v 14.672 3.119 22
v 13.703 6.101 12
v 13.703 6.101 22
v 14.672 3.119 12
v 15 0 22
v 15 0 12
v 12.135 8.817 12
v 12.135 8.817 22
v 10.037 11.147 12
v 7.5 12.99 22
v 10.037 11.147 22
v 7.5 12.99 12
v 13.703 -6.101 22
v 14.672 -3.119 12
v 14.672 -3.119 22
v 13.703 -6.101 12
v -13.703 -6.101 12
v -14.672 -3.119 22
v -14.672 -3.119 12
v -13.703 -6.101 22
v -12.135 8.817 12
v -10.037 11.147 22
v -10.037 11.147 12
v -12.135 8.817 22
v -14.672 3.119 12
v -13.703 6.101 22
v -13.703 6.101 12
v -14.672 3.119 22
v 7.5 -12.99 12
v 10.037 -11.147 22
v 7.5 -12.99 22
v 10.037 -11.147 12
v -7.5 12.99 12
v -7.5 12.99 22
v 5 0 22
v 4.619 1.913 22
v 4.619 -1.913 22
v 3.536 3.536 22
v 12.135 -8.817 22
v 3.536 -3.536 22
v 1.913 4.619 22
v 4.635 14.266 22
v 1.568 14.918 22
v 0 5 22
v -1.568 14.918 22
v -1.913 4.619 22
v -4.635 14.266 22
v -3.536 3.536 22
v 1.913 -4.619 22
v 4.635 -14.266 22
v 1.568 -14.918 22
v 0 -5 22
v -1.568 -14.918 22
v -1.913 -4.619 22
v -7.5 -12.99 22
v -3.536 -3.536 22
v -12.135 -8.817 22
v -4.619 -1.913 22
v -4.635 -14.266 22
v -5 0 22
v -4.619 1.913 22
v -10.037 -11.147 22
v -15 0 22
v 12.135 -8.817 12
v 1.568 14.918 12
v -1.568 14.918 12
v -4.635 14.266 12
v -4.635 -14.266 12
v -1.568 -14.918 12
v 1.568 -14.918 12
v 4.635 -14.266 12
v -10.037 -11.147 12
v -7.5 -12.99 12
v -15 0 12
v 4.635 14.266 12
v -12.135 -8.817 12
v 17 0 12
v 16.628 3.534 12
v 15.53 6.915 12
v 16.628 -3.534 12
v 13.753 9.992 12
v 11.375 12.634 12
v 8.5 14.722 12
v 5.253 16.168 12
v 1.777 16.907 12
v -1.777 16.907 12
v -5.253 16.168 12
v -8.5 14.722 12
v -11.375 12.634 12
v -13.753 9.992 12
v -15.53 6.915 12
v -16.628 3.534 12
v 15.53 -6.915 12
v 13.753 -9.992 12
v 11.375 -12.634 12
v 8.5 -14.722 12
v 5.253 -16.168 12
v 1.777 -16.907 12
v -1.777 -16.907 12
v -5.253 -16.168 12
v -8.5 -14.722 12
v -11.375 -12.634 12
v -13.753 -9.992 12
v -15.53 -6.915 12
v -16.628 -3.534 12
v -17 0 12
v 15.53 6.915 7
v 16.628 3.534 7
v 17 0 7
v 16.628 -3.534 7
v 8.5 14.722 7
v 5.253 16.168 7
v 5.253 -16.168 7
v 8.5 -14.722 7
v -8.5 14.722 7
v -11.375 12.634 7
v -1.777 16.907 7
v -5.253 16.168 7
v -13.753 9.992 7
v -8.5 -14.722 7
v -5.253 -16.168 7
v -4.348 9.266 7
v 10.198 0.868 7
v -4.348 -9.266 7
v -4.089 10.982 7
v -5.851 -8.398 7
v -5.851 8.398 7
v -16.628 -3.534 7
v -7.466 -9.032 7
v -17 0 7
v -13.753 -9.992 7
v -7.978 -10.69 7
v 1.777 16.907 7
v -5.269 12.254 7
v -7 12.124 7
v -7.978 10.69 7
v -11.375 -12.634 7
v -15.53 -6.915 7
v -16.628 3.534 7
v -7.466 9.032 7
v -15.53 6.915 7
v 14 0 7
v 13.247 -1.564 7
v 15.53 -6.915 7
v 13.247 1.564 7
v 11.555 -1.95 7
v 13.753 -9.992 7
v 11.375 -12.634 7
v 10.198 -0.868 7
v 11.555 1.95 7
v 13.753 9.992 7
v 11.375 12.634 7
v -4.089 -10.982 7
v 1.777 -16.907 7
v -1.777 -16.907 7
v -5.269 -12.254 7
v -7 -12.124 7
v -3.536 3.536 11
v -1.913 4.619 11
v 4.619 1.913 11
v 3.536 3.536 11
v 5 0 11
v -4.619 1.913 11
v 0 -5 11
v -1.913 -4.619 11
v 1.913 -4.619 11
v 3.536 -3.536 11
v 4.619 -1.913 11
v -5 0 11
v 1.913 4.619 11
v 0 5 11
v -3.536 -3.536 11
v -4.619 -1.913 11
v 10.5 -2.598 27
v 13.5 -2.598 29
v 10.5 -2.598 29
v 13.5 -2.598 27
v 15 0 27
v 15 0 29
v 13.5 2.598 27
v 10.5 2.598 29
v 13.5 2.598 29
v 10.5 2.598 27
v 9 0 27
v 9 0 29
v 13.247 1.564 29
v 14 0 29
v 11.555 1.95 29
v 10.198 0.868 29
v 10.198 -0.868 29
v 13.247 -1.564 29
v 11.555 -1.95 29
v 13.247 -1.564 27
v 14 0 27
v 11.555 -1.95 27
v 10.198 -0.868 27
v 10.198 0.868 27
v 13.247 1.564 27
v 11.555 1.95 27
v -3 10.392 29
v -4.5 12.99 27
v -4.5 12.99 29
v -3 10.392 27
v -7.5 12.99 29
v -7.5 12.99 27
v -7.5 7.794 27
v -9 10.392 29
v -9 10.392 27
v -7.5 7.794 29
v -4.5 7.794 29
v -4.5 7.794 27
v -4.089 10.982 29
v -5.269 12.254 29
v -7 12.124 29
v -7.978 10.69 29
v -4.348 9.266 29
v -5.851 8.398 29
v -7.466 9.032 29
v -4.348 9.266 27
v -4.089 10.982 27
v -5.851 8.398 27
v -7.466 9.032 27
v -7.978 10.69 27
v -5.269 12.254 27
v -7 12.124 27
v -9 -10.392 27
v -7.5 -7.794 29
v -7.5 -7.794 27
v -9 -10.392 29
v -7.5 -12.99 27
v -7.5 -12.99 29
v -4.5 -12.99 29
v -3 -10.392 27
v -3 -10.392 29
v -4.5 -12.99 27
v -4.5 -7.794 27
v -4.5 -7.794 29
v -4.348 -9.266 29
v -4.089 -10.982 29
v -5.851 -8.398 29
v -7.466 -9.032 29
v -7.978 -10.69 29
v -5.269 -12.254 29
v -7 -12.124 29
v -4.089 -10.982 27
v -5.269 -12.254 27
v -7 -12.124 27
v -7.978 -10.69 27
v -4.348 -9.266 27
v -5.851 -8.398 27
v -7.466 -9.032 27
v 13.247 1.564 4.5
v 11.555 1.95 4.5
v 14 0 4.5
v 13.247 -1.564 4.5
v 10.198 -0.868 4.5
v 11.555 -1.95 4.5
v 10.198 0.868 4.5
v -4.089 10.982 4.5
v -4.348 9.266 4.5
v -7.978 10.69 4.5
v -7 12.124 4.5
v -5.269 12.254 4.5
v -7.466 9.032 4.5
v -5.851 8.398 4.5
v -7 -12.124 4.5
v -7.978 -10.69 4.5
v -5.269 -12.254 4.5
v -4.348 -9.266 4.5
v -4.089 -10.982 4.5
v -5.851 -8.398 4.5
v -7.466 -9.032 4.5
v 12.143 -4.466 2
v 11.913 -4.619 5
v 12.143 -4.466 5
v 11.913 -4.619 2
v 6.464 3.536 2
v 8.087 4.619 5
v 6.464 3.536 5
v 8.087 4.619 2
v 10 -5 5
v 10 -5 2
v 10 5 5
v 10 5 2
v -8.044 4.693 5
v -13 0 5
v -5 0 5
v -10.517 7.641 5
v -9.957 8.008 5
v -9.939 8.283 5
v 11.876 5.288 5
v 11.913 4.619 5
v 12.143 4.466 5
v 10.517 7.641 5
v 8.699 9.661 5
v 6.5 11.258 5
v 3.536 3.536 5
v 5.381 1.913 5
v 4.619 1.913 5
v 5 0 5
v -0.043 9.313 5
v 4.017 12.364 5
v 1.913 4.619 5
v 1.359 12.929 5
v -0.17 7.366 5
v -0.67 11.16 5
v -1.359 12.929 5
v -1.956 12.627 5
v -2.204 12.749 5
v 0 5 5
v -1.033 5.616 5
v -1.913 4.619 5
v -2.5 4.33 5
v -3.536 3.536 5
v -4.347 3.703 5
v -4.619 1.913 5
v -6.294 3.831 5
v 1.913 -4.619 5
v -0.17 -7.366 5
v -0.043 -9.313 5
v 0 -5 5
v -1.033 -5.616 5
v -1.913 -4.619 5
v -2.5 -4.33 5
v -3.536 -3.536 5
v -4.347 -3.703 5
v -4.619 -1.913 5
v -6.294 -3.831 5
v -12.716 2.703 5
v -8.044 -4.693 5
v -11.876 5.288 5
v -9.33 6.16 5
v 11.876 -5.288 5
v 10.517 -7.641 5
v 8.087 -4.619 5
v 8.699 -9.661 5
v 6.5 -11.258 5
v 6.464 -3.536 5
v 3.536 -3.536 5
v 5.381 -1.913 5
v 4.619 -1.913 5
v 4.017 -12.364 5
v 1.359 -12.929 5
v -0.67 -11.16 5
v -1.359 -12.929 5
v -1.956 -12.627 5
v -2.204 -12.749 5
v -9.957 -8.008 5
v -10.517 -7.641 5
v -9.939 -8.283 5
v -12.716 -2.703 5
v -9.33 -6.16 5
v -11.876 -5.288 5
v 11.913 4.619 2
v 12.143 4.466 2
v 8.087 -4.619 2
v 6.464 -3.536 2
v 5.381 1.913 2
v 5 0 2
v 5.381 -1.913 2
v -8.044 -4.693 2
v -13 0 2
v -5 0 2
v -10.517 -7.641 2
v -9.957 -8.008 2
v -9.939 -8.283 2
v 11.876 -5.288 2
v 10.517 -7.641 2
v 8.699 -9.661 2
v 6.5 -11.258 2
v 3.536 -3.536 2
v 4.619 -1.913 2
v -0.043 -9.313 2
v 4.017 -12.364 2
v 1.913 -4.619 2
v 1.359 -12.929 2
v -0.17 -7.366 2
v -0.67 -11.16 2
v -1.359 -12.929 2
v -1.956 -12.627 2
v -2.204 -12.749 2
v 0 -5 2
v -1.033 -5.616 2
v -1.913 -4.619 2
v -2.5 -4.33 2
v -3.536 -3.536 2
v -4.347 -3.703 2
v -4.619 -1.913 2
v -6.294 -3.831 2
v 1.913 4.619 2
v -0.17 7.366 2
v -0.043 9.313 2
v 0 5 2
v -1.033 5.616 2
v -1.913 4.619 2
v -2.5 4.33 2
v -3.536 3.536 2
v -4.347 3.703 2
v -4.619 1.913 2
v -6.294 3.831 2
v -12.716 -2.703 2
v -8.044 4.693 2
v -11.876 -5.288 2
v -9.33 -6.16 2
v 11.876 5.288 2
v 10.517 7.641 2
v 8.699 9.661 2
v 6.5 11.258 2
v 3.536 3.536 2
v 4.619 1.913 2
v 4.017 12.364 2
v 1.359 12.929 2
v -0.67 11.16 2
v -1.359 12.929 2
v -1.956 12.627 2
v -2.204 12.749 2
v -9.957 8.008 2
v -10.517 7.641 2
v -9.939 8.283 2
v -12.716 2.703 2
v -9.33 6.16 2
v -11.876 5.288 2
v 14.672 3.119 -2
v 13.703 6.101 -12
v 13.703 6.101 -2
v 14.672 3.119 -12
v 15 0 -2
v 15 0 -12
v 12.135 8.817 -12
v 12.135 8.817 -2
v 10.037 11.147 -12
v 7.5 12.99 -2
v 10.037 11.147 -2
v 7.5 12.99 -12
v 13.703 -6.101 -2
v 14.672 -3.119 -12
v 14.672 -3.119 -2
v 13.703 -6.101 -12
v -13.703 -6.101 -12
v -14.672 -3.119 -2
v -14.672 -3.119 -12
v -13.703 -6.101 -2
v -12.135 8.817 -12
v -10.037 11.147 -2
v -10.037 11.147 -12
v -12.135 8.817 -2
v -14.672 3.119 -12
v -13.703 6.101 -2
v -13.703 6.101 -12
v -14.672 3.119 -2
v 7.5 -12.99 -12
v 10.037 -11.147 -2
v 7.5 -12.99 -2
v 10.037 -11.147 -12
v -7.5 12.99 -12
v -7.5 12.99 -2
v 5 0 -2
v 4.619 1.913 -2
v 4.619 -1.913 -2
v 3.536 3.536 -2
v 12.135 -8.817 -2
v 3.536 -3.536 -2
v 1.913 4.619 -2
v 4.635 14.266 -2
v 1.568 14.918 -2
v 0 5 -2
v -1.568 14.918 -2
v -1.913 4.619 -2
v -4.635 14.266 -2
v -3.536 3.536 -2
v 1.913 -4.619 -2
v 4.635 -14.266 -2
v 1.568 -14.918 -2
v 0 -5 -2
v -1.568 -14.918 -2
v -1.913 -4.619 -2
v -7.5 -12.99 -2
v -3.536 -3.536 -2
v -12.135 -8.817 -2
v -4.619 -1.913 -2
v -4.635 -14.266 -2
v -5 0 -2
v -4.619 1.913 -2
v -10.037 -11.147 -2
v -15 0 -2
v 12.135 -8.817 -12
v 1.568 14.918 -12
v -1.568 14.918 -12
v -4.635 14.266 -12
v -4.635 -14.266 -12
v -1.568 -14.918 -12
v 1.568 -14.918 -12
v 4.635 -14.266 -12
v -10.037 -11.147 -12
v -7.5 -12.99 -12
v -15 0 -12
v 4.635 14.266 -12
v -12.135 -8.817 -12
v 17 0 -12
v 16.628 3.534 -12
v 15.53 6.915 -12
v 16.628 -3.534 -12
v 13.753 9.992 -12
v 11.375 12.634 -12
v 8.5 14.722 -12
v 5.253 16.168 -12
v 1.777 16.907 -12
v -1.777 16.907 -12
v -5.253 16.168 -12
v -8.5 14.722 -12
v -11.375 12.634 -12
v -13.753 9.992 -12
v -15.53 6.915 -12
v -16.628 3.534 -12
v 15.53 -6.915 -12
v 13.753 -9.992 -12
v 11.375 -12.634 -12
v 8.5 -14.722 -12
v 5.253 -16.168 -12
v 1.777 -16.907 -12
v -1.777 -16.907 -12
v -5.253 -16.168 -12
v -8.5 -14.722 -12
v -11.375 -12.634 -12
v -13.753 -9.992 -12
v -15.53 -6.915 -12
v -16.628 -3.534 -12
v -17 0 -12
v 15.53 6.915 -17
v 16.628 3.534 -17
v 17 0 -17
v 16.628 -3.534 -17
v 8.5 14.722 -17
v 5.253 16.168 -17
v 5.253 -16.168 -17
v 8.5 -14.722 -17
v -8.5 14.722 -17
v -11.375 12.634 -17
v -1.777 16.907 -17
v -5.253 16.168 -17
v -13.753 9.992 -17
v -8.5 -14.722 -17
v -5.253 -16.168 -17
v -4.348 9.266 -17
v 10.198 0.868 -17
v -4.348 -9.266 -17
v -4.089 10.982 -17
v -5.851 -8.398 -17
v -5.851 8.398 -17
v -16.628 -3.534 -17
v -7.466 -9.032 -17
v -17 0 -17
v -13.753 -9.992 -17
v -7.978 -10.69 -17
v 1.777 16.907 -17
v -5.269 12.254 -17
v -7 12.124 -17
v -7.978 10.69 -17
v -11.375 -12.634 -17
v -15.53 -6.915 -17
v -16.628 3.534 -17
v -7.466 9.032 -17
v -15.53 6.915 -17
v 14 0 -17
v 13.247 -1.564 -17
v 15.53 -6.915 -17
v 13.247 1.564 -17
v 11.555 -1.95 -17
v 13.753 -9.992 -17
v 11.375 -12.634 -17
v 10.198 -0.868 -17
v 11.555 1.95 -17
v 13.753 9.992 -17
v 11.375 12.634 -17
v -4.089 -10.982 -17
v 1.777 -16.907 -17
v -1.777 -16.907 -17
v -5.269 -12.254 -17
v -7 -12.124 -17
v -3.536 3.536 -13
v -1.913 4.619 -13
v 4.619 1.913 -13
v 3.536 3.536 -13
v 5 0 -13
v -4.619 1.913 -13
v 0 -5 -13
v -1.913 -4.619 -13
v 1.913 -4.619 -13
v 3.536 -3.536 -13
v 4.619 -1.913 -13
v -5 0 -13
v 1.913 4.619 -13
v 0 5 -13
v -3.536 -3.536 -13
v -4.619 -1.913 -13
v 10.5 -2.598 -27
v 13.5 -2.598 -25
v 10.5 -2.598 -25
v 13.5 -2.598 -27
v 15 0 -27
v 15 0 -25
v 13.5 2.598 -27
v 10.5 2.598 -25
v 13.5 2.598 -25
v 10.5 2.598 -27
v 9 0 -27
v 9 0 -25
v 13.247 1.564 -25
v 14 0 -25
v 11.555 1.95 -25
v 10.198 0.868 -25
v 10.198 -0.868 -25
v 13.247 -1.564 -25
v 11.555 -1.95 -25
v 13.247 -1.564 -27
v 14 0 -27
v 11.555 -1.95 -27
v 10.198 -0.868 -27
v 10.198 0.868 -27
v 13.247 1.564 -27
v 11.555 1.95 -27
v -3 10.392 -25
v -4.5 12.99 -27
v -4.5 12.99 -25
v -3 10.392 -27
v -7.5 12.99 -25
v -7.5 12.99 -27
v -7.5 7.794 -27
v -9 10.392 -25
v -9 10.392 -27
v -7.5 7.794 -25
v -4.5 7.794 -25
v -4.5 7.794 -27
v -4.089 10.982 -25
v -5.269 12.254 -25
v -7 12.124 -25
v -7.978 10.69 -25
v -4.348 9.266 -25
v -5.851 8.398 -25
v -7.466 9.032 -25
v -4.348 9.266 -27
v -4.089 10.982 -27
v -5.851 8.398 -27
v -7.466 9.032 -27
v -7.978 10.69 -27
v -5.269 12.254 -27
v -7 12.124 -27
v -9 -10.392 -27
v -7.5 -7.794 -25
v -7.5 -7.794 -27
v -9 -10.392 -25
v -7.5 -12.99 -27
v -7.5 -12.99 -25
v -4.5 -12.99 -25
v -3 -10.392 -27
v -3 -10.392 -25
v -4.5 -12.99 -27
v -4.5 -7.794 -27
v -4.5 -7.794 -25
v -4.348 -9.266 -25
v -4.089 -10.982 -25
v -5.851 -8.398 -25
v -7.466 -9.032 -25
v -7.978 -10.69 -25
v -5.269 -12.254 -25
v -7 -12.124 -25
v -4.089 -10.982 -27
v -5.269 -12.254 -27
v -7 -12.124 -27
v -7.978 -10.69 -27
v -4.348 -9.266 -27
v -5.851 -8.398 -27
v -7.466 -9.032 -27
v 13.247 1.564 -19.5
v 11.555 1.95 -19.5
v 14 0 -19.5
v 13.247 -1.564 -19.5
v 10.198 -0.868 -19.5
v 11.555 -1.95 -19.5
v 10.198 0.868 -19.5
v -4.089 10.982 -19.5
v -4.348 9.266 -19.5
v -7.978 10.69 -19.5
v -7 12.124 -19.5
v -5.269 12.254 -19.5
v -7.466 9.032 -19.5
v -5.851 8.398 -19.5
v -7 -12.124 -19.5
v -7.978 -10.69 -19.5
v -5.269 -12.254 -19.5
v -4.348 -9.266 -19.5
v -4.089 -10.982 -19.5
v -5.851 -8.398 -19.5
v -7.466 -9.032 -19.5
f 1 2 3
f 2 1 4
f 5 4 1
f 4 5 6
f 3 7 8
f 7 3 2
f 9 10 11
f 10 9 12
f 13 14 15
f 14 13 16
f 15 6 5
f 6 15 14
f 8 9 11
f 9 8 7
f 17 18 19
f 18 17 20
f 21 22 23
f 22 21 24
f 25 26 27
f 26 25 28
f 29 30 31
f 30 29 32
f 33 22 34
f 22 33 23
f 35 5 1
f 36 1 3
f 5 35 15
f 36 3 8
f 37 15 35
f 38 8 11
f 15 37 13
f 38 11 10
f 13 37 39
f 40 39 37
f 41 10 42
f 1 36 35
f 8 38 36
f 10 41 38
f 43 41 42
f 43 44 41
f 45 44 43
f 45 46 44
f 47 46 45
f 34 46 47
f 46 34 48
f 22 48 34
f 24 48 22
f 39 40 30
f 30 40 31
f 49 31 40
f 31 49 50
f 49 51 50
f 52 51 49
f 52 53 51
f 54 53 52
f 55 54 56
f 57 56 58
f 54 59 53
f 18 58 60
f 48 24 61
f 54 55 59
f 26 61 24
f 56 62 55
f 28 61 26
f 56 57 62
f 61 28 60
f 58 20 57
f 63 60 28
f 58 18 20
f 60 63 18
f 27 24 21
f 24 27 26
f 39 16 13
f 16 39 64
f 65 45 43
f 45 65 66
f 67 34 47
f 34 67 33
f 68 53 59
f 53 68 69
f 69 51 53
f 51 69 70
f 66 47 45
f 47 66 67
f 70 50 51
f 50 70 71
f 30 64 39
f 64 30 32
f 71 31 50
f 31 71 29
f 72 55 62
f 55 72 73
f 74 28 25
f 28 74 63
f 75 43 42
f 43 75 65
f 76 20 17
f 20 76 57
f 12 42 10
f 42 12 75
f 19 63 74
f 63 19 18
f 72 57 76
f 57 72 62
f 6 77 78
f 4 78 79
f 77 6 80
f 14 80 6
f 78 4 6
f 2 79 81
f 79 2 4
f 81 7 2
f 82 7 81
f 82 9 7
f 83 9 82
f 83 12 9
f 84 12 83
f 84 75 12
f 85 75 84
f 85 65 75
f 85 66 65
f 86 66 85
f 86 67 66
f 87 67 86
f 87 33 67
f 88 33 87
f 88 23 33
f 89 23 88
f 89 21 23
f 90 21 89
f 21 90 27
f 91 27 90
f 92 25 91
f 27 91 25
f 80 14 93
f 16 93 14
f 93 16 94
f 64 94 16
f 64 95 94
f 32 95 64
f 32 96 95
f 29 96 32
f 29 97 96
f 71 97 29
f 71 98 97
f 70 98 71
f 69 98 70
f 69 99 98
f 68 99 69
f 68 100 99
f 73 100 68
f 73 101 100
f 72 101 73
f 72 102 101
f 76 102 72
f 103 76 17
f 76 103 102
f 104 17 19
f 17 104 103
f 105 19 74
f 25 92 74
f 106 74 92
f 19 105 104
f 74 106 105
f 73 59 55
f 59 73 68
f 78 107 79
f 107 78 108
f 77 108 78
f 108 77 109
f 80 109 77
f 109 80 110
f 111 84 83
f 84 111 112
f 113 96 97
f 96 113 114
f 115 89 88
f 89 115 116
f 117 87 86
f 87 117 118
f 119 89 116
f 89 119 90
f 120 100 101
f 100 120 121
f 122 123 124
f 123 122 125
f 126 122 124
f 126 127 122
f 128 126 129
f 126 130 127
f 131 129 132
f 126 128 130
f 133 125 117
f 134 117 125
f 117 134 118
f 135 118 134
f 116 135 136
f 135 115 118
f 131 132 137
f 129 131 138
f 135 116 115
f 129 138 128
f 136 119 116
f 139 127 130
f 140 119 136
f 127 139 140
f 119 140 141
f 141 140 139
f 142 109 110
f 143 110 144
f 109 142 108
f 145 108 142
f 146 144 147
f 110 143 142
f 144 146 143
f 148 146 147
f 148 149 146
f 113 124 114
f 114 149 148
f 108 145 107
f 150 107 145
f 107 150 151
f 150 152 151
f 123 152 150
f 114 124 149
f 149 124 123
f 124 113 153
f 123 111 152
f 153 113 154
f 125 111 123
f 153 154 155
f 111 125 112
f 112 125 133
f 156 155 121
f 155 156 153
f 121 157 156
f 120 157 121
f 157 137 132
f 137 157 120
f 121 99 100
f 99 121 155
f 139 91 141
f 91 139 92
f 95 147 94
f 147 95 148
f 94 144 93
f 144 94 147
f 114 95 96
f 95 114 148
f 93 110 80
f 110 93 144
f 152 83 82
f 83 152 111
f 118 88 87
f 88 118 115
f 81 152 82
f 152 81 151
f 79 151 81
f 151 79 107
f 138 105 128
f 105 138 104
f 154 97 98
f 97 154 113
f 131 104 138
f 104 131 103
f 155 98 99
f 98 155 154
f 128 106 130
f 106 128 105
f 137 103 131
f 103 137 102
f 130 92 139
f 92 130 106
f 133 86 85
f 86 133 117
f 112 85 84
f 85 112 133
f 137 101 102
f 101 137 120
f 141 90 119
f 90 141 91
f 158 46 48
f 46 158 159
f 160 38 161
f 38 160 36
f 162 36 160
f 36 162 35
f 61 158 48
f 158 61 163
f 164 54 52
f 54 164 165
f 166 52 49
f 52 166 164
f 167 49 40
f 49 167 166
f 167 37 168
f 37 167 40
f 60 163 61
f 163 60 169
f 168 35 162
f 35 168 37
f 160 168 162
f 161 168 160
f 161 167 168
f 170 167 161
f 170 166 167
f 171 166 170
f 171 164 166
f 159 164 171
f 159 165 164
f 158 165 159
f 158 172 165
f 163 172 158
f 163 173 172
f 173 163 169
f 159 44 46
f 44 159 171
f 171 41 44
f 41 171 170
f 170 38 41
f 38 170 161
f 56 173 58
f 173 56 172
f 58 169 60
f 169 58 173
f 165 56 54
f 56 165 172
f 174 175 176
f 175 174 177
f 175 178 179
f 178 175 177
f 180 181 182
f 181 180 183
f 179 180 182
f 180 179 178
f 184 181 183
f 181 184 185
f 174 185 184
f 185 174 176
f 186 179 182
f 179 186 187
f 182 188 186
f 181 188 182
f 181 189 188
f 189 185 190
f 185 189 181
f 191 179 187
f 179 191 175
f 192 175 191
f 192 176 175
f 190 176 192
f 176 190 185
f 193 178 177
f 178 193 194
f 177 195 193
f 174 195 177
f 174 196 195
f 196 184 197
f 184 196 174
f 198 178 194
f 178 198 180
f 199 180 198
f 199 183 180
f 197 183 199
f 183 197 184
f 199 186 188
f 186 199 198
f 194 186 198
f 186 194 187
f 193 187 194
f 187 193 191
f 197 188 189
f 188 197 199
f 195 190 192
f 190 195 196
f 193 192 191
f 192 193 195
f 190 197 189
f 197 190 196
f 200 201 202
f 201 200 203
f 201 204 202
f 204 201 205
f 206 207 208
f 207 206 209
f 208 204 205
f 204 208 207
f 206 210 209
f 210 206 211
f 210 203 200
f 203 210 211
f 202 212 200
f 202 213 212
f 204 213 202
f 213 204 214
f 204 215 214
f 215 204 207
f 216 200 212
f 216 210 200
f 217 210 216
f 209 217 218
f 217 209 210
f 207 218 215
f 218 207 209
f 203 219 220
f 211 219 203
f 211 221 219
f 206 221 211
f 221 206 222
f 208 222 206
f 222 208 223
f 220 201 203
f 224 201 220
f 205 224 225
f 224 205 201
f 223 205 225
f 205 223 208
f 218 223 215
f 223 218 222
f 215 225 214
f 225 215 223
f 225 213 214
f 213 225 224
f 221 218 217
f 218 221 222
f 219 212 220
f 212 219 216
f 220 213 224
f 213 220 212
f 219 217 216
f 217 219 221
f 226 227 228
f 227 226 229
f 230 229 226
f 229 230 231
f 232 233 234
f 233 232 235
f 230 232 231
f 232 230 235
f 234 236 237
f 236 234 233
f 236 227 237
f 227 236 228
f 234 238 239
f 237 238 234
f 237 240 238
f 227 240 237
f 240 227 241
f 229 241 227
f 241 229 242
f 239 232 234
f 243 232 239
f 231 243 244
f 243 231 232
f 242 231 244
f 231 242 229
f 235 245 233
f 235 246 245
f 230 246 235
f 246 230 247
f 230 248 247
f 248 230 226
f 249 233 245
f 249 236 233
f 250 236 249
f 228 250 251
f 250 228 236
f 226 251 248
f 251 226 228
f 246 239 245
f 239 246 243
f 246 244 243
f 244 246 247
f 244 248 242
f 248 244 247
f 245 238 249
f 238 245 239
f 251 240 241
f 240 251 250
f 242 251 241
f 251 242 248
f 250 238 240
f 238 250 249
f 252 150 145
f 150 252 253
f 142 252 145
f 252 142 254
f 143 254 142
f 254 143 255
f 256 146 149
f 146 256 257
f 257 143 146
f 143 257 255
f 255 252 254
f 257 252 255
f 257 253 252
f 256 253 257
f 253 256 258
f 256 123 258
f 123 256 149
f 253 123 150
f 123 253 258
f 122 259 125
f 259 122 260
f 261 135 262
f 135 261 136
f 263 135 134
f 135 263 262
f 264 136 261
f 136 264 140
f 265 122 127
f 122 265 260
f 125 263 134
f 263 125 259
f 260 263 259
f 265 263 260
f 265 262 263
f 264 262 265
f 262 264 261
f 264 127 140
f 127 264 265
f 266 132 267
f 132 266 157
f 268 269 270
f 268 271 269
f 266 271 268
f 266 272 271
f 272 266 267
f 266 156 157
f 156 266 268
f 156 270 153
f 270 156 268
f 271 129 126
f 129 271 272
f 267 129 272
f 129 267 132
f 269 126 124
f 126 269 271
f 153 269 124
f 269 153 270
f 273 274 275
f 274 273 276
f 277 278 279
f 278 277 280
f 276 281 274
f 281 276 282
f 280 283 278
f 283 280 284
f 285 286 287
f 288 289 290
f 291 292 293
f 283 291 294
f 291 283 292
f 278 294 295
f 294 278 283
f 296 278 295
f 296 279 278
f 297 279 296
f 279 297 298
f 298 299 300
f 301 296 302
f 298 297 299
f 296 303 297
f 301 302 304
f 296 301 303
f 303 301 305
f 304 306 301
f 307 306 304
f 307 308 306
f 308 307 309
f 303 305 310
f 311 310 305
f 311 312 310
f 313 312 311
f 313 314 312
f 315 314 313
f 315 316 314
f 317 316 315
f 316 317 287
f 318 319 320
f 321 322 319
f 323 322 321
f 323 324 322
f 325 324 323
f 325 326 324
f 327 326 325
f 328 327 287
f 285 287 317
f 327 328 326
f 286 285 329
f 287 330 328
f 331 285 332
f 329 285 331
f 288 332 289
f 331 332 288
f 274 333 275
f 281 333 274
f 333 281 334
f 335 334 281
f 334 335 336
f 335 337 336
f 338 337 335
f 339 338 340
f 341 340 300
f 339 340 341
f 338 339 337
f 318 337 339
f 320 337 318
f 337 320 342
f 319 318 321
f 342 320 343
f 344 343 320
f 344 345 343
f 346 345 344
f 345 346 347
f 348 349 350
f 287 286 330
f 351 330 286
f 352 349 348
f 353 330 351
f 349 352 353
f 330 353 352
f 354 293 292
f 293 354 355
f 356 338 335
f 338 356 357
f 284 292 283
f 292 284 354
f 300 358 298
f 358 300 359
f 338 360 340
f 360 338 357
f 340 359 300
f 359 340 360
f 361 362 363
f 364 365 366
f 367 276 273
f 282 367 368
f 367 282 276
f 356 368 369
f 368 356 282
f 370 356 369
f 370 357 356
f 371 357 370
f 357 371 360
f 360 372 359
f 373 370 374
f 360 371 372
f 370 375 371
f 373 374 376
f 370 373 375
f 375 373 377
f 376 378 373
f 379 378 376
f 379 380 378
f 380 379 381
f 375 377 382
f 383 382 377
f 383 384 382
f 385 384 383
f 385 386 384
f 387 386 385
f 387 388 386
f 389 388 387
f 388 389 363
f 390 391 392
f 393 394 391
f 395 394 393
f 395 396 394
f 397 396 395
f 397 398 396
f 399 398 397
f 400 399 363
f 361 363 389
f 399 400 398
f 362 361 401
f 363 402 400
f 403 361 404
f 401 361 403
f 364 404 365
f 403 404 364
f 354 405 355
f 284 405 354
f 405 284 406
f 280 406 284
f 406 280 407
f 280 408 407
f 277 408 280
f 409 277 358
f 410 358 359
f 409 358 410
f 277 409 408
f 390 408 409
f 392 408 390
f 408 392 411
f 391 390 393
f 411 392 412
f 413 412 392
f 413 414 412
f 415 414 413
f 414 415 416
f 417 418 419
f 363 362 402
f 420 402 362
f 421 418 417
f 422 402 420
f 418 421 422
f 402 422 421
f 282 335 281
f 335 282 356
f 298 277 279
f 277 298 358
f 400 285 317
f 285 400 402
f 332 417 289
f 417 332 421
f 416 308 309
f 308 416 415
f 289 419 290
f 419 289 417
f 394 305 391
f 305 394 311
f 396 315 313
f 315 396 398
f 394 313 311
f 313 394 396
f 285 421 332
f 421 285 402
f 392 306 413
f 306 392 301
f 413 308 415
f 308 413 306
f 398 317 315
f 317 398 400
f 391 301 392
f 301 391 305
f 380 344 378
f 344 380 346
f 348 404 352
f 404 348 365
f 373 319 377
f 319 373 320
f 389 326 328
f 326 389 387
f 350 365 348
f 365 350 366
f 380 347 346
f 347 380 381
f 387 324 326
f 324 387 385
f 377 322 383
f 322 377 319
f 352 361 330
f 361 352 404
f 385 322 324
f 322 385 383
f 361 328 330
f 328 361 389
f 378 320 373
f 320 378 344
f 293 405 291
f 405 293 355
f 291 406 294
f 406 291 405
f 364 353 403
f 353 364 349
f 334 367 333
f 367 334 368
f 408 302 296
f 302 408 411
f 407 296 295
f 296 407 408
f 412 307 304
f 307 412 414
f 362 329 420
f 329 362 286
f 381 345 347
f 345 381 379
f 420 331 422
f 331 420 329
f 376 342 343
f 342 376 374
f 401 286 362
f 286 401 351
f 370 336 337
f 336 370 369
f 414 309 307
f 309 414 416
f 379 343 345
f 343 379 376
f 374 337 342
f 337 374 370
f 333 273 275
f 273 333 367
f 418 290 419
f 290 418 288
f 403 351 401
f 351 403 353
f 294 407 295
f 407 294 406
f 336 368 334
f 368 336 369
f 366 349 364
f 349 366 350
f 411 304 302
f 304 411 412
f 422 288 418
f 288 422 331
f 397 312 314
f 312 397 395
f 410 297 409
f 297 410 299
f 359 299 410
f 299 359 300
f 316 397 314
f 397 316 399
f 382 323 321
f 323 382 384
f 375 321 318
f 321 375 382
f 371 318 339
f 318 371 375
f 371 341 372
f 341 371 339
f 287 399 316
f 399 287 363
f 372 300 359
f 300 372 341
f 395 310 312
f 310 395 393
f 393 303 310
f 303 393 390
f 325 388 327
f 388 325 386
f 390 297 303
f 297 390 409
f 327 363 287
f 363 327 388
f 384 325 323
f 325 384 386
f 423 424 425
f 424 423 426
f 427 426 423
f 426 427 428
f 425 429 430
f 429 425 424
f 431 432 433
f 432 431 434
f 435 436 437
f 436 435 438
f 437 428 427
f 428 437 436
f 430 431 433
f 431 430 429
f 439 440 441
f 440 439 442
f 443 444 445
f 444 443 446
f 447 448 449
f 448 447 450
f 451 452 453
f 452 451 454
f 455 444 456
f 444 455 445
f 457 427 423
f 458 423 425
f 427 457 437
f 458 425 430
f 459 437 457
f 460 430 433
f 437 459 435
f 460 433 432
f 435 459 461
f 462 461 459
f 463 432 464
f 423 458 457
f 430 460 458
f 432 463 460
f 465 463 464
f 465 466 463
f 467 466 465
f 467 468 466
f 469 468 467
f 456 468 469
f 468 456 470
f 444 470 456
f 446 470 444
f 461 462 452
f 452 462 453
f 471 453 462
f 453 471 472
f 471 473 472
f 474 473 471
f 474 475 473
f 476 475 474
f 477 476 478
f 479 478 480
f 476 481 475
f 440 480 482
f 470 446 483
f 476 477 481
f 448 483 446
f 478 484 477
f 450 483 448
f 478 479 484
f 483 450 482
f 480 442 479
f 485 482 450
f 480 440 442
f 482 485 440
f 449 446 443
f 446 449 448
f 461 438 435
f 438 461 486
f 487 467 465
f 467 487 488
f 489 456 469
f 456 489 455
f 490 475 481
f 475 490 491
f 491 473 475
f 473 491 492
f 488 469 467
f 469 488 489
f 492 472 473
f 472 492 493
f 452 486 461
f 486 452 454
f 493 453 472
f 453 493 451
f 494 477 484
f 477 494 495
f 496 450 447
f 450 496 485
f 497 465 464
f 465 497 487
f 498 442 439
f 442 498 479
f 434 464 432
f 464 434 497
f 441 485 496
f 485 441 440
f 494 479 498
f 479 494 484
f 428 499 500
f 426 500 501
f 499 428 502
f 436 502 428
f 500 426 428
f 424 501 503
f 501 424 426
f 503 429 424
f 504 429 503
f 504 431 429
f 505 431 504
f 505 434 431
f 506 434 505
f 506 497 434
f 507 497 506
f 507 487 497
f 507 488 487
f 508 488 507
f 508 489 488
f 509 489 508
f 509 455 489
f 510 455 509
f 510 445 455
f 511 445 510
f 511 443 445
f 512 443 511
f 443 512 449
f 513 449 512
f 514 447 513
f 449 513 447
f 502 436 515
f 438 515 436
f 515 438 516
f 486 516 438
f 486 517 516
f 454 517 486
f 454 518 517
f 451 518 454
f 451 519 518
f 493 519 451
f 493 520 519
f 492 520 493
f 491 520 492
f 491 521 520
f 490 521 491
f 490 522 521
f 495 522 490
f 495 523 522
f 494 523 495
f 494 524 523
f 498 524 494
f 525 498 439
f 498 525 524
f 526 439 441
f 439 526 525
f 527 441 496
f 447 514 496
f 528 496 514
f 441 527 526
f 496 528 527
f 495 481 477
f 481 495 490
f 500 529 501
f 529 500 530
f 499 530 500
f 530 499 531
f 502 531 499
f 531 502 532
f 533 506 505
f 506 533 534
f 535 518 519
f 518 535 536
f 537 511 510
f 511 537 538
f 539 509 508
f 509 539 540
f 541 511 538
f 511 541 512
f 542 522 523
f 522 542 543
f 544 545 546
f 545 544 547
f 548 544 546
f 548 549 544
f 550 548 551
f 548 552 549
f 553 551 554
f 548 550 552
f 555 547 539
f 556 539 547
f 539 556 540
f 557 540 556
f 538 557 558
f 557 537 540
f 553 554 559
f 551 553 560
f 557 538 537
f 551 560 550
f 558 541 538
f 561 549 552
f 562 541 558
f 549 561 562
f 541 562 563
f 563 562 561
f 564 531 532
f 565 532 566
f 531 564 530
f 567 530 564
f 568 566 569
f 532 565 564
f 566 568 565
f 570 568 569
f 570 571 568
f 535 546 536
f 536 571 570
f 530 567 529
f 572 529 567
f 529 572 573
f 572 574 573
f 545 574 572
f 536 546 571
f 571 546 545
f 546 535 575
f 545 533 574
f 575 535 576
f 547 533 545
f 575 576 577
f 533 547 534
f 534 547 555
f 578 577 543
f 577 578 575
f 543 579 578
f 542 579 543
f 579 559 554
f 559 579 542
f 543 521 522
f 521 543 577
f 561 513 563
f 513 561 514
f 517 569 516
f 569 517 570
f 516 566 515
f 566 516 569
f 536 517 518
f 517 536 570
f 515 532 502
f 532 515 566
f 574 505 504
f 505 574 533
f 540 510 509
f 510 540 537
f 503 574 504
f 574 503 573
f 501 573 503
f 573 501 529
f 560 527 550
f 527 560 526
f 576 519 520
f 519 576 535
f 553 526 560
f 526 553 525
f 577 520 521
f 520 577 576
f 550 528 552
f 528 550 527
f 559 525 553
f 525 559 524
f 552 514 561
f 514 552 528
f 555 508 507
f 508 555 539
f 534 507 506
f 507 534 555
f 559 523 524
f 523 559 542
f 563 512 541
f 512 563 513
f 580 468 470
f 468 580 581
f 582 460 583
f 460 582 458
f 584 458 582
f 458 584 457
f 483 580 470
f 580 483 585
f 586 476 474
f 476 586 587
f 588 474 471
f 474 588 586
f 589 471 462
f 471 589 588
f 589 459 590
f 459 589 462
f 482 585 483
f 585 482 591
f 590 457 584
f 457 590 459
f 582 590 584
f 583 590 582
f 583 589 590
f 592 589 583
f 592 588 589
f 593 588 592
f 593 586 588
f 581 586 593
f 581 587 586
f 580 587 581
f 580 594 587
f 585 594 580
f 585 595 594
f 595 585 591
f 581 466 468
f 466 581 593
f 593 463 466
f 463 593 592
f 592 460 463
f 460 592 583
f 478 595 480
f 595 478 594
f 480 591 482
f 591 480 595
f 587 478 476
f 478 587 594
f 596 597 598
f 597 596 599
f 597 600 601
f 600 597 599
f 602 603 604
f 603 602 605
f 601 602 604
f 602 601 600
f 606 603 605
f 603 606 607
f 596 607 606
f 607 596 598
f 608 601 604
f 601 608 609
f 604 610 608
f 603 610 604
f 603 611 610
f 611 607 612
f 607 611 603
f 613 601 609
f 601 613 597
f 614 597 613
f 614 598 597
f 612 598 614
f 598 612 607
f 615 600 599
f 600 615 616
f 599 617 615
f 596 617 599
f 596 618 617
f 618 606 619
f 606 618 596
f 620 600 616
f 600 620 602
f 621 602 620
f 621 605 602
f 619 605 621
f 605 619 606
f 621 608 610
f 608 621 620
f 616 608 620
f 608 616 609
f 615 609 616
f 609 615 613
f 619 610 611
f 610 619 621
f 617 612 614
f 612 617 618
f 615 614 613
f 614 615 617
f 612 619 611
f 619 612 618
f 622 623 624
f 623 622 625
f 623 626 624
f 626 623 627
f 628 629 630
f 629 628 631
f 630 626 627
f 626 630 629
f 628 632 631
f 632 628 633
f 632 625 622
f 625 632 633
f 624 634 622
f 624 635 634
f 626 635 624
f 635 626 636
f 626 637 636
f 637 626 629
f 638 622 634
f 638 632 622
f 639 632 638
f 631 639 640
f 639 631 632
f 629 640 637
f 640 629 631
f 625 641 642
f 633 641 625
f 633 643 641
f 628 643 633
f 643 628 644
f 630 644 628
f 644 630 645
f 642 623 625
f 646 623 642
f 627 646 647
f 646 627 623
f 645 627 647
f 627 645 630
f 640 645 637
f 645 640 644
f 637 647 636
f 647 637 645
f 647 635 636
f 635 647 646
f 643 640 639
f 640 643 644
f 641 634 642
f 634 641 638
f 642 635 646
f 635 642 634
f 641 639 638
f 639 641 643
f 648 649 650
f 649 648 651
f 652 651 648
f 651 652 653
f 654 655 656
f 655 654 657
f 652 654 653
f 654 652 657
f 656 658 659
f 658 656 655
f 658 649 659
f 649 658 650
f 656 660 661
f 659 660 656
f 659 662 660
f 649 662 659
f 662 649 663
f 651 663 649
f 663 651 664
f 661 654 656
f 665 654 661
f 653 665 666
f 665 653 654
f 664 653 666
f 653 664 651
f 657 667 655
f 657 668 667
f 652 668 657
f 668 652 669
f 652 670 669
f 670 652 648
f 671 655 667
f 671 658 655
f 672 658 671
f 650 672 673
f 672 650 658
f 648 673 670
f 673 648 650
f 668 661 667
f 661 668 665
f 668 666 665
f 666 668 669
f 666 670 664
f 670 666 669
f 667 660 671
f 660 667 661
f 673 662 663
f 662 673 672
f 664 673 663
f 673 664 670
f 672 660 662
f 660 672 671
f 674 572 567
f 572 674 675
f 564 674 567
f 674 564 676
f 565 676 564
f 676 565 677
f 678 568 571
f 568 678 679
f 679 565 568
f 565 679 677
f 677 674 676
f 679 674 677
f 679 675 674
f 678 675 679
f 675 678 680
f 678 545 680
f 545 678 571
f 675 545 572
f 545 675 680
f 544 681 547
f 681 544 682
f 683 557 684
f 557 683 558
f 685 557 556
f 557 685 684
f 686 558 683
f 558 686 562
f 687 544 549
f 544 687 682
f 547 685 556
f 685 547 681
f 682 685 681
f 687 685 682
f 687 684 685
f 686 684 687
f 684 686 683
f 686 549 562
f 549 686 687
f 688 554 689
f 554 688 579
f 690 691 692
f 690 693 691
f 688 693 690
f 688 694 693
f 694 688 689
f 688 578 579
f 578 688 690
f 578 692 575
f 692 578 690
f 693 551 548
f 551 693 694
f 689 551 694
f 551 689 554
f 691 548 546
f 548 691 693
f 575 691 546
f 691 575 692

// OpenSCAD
// Parameters
clamp_radius = 15;
clamp_length = 10;
clamp_thickness = 5;
bolt_hole_radius = 2;
shaft_hole_radius = 5;
bolt_radius = 2;
bolt_length = 15;
nut_radius = 3;
nut_thickness = 2;
flexible_element_thickness = 3;
flexible_element_gap = 2;
cutout_depth = 3;
cutout_radius = 5;
cutout_spacing = 6; // Adjusted for better cutout placement

// Function to create a clamp half with detailed cutouts
module clamp_half() {
    difference() {
        union() {
            cylinder(h = clamp_length, r = clamp_radius);
            translate([0, 0, -clamp_thickness])
                cylinder(h = clamp_thickness, r = clamp_radius + 2);
        }
        // Shaft hole
        translate([0, 0, -1])
            cylinder(h = clamp_length + 2, r = shaft_hole_radius);
        // Bolt holes
        for (i = [0:120:360]) {
            rotate([0, 0, i])
                translate([clamp_radius - 3, 0, clamp_length / 2])
                    cylinder(h = clamp_length + 2, r = bolt_hole_radius);
        }
        // Curved cutouts for flexibility
        for (i = [0:120:360]) {
            rotate([0, 0, i])
                translate([clamp_radius - cutout_radius, 0, clamp_length / 2])
                    cylinder(h = clamp_length + 2, r = cutout_radius);
        }
        // Additional detailing for curvature
        for (i = [0:120:360]) {
            rotate([0, 0, i])
                translate([clamp_radius - cutout_spacing, 0, clamp_length / 2])
                    cylinder(h = clamp_length + 2, r = cutout_radius / 2);
        }
    }
}

// Function to create a flexible element with more defined curvature
module flexible_element() {
    difference() {
        cylinder(h = flexible_element_thickness, r = clamp_radius - 2);
        translate([0, 0, -1])
            cylinder(h = flexible_element_thickness + 2, r = shaft_hole_radius);
        // Adding curved recesses for flexibility
        for (i = [0:120:360]) {
            rotate([0, 0, i])
                translate([clamp_radius - cutout_radius, 0, 0])
                    cylinder(h = flexible_element_thickness, r = cutout_radius);
        }
    }
}

// Function to create a bolt
module bolt() {
    translate([0, 0, -bolt_length / 2])
        cylinder(h = bolt_length, r = bolt_radius);
}

// Function to create a nut with recess
module nut() {
    difference() {
        cylinder(h = nut_thickness, r = nut_radius, $fn = 6);
        translate([0, 0, -1])
            cylinder(h = nut_thickness + 2, r = nut_radius - 1);
    }
}

// Assembly
module coupling() {
    // Top clamp halves
    translate([0, 0, clamp_length + flexible_element_gap])
        clamp_half();
    mirror([1, 0, 0])
        translate([0, 0, clamp_length + flexible_element_gap])
            clamp_half();
    
    // Bolts and nuts (top layer)
    for (i = [0:120:360]) {
        rotate([0, 0, i])
            translate([clamp_radius - 3, 0, clamp_length + flexible_element_gap])
                bolt();
        rotate([0, 0, i])
            translate([clamp_radius - 3, 0, clamp_length + flexible_element_gap + bolt_length])
                nut();
    }

    // Flexible element (top)
    translate([0, 0, flexible_element_gap])
        flexible_element();

    // Bottom clamp halves
    translate([0, 0, -clamp_length - flexible_element_gap])
        clamp_half();
    mirror([1, 0, 0])
        translate([0, 0, -clamp_length - flexible_element_gap])
            clamp_half();

    // Bolts and nuts (bottom layer)
    for (i = [0:120:360]) {
        rotate([0, 0, i])
            translate([clamp_radius - 3, 0, -clamp_length - flexible_element_gap])
                bolt();
        rotate([0, 0, i])
            translate([clamp_radius - 3, 0, -clamp_length - flexible_element_gap - bolt_length])
                nut();
    }

    // Flexible element (bottom)
    translate([0, 0, -clamp_length - 2 * flexible_element_gap])
        flexible_element();
}

// Render the coupling
coupling();
